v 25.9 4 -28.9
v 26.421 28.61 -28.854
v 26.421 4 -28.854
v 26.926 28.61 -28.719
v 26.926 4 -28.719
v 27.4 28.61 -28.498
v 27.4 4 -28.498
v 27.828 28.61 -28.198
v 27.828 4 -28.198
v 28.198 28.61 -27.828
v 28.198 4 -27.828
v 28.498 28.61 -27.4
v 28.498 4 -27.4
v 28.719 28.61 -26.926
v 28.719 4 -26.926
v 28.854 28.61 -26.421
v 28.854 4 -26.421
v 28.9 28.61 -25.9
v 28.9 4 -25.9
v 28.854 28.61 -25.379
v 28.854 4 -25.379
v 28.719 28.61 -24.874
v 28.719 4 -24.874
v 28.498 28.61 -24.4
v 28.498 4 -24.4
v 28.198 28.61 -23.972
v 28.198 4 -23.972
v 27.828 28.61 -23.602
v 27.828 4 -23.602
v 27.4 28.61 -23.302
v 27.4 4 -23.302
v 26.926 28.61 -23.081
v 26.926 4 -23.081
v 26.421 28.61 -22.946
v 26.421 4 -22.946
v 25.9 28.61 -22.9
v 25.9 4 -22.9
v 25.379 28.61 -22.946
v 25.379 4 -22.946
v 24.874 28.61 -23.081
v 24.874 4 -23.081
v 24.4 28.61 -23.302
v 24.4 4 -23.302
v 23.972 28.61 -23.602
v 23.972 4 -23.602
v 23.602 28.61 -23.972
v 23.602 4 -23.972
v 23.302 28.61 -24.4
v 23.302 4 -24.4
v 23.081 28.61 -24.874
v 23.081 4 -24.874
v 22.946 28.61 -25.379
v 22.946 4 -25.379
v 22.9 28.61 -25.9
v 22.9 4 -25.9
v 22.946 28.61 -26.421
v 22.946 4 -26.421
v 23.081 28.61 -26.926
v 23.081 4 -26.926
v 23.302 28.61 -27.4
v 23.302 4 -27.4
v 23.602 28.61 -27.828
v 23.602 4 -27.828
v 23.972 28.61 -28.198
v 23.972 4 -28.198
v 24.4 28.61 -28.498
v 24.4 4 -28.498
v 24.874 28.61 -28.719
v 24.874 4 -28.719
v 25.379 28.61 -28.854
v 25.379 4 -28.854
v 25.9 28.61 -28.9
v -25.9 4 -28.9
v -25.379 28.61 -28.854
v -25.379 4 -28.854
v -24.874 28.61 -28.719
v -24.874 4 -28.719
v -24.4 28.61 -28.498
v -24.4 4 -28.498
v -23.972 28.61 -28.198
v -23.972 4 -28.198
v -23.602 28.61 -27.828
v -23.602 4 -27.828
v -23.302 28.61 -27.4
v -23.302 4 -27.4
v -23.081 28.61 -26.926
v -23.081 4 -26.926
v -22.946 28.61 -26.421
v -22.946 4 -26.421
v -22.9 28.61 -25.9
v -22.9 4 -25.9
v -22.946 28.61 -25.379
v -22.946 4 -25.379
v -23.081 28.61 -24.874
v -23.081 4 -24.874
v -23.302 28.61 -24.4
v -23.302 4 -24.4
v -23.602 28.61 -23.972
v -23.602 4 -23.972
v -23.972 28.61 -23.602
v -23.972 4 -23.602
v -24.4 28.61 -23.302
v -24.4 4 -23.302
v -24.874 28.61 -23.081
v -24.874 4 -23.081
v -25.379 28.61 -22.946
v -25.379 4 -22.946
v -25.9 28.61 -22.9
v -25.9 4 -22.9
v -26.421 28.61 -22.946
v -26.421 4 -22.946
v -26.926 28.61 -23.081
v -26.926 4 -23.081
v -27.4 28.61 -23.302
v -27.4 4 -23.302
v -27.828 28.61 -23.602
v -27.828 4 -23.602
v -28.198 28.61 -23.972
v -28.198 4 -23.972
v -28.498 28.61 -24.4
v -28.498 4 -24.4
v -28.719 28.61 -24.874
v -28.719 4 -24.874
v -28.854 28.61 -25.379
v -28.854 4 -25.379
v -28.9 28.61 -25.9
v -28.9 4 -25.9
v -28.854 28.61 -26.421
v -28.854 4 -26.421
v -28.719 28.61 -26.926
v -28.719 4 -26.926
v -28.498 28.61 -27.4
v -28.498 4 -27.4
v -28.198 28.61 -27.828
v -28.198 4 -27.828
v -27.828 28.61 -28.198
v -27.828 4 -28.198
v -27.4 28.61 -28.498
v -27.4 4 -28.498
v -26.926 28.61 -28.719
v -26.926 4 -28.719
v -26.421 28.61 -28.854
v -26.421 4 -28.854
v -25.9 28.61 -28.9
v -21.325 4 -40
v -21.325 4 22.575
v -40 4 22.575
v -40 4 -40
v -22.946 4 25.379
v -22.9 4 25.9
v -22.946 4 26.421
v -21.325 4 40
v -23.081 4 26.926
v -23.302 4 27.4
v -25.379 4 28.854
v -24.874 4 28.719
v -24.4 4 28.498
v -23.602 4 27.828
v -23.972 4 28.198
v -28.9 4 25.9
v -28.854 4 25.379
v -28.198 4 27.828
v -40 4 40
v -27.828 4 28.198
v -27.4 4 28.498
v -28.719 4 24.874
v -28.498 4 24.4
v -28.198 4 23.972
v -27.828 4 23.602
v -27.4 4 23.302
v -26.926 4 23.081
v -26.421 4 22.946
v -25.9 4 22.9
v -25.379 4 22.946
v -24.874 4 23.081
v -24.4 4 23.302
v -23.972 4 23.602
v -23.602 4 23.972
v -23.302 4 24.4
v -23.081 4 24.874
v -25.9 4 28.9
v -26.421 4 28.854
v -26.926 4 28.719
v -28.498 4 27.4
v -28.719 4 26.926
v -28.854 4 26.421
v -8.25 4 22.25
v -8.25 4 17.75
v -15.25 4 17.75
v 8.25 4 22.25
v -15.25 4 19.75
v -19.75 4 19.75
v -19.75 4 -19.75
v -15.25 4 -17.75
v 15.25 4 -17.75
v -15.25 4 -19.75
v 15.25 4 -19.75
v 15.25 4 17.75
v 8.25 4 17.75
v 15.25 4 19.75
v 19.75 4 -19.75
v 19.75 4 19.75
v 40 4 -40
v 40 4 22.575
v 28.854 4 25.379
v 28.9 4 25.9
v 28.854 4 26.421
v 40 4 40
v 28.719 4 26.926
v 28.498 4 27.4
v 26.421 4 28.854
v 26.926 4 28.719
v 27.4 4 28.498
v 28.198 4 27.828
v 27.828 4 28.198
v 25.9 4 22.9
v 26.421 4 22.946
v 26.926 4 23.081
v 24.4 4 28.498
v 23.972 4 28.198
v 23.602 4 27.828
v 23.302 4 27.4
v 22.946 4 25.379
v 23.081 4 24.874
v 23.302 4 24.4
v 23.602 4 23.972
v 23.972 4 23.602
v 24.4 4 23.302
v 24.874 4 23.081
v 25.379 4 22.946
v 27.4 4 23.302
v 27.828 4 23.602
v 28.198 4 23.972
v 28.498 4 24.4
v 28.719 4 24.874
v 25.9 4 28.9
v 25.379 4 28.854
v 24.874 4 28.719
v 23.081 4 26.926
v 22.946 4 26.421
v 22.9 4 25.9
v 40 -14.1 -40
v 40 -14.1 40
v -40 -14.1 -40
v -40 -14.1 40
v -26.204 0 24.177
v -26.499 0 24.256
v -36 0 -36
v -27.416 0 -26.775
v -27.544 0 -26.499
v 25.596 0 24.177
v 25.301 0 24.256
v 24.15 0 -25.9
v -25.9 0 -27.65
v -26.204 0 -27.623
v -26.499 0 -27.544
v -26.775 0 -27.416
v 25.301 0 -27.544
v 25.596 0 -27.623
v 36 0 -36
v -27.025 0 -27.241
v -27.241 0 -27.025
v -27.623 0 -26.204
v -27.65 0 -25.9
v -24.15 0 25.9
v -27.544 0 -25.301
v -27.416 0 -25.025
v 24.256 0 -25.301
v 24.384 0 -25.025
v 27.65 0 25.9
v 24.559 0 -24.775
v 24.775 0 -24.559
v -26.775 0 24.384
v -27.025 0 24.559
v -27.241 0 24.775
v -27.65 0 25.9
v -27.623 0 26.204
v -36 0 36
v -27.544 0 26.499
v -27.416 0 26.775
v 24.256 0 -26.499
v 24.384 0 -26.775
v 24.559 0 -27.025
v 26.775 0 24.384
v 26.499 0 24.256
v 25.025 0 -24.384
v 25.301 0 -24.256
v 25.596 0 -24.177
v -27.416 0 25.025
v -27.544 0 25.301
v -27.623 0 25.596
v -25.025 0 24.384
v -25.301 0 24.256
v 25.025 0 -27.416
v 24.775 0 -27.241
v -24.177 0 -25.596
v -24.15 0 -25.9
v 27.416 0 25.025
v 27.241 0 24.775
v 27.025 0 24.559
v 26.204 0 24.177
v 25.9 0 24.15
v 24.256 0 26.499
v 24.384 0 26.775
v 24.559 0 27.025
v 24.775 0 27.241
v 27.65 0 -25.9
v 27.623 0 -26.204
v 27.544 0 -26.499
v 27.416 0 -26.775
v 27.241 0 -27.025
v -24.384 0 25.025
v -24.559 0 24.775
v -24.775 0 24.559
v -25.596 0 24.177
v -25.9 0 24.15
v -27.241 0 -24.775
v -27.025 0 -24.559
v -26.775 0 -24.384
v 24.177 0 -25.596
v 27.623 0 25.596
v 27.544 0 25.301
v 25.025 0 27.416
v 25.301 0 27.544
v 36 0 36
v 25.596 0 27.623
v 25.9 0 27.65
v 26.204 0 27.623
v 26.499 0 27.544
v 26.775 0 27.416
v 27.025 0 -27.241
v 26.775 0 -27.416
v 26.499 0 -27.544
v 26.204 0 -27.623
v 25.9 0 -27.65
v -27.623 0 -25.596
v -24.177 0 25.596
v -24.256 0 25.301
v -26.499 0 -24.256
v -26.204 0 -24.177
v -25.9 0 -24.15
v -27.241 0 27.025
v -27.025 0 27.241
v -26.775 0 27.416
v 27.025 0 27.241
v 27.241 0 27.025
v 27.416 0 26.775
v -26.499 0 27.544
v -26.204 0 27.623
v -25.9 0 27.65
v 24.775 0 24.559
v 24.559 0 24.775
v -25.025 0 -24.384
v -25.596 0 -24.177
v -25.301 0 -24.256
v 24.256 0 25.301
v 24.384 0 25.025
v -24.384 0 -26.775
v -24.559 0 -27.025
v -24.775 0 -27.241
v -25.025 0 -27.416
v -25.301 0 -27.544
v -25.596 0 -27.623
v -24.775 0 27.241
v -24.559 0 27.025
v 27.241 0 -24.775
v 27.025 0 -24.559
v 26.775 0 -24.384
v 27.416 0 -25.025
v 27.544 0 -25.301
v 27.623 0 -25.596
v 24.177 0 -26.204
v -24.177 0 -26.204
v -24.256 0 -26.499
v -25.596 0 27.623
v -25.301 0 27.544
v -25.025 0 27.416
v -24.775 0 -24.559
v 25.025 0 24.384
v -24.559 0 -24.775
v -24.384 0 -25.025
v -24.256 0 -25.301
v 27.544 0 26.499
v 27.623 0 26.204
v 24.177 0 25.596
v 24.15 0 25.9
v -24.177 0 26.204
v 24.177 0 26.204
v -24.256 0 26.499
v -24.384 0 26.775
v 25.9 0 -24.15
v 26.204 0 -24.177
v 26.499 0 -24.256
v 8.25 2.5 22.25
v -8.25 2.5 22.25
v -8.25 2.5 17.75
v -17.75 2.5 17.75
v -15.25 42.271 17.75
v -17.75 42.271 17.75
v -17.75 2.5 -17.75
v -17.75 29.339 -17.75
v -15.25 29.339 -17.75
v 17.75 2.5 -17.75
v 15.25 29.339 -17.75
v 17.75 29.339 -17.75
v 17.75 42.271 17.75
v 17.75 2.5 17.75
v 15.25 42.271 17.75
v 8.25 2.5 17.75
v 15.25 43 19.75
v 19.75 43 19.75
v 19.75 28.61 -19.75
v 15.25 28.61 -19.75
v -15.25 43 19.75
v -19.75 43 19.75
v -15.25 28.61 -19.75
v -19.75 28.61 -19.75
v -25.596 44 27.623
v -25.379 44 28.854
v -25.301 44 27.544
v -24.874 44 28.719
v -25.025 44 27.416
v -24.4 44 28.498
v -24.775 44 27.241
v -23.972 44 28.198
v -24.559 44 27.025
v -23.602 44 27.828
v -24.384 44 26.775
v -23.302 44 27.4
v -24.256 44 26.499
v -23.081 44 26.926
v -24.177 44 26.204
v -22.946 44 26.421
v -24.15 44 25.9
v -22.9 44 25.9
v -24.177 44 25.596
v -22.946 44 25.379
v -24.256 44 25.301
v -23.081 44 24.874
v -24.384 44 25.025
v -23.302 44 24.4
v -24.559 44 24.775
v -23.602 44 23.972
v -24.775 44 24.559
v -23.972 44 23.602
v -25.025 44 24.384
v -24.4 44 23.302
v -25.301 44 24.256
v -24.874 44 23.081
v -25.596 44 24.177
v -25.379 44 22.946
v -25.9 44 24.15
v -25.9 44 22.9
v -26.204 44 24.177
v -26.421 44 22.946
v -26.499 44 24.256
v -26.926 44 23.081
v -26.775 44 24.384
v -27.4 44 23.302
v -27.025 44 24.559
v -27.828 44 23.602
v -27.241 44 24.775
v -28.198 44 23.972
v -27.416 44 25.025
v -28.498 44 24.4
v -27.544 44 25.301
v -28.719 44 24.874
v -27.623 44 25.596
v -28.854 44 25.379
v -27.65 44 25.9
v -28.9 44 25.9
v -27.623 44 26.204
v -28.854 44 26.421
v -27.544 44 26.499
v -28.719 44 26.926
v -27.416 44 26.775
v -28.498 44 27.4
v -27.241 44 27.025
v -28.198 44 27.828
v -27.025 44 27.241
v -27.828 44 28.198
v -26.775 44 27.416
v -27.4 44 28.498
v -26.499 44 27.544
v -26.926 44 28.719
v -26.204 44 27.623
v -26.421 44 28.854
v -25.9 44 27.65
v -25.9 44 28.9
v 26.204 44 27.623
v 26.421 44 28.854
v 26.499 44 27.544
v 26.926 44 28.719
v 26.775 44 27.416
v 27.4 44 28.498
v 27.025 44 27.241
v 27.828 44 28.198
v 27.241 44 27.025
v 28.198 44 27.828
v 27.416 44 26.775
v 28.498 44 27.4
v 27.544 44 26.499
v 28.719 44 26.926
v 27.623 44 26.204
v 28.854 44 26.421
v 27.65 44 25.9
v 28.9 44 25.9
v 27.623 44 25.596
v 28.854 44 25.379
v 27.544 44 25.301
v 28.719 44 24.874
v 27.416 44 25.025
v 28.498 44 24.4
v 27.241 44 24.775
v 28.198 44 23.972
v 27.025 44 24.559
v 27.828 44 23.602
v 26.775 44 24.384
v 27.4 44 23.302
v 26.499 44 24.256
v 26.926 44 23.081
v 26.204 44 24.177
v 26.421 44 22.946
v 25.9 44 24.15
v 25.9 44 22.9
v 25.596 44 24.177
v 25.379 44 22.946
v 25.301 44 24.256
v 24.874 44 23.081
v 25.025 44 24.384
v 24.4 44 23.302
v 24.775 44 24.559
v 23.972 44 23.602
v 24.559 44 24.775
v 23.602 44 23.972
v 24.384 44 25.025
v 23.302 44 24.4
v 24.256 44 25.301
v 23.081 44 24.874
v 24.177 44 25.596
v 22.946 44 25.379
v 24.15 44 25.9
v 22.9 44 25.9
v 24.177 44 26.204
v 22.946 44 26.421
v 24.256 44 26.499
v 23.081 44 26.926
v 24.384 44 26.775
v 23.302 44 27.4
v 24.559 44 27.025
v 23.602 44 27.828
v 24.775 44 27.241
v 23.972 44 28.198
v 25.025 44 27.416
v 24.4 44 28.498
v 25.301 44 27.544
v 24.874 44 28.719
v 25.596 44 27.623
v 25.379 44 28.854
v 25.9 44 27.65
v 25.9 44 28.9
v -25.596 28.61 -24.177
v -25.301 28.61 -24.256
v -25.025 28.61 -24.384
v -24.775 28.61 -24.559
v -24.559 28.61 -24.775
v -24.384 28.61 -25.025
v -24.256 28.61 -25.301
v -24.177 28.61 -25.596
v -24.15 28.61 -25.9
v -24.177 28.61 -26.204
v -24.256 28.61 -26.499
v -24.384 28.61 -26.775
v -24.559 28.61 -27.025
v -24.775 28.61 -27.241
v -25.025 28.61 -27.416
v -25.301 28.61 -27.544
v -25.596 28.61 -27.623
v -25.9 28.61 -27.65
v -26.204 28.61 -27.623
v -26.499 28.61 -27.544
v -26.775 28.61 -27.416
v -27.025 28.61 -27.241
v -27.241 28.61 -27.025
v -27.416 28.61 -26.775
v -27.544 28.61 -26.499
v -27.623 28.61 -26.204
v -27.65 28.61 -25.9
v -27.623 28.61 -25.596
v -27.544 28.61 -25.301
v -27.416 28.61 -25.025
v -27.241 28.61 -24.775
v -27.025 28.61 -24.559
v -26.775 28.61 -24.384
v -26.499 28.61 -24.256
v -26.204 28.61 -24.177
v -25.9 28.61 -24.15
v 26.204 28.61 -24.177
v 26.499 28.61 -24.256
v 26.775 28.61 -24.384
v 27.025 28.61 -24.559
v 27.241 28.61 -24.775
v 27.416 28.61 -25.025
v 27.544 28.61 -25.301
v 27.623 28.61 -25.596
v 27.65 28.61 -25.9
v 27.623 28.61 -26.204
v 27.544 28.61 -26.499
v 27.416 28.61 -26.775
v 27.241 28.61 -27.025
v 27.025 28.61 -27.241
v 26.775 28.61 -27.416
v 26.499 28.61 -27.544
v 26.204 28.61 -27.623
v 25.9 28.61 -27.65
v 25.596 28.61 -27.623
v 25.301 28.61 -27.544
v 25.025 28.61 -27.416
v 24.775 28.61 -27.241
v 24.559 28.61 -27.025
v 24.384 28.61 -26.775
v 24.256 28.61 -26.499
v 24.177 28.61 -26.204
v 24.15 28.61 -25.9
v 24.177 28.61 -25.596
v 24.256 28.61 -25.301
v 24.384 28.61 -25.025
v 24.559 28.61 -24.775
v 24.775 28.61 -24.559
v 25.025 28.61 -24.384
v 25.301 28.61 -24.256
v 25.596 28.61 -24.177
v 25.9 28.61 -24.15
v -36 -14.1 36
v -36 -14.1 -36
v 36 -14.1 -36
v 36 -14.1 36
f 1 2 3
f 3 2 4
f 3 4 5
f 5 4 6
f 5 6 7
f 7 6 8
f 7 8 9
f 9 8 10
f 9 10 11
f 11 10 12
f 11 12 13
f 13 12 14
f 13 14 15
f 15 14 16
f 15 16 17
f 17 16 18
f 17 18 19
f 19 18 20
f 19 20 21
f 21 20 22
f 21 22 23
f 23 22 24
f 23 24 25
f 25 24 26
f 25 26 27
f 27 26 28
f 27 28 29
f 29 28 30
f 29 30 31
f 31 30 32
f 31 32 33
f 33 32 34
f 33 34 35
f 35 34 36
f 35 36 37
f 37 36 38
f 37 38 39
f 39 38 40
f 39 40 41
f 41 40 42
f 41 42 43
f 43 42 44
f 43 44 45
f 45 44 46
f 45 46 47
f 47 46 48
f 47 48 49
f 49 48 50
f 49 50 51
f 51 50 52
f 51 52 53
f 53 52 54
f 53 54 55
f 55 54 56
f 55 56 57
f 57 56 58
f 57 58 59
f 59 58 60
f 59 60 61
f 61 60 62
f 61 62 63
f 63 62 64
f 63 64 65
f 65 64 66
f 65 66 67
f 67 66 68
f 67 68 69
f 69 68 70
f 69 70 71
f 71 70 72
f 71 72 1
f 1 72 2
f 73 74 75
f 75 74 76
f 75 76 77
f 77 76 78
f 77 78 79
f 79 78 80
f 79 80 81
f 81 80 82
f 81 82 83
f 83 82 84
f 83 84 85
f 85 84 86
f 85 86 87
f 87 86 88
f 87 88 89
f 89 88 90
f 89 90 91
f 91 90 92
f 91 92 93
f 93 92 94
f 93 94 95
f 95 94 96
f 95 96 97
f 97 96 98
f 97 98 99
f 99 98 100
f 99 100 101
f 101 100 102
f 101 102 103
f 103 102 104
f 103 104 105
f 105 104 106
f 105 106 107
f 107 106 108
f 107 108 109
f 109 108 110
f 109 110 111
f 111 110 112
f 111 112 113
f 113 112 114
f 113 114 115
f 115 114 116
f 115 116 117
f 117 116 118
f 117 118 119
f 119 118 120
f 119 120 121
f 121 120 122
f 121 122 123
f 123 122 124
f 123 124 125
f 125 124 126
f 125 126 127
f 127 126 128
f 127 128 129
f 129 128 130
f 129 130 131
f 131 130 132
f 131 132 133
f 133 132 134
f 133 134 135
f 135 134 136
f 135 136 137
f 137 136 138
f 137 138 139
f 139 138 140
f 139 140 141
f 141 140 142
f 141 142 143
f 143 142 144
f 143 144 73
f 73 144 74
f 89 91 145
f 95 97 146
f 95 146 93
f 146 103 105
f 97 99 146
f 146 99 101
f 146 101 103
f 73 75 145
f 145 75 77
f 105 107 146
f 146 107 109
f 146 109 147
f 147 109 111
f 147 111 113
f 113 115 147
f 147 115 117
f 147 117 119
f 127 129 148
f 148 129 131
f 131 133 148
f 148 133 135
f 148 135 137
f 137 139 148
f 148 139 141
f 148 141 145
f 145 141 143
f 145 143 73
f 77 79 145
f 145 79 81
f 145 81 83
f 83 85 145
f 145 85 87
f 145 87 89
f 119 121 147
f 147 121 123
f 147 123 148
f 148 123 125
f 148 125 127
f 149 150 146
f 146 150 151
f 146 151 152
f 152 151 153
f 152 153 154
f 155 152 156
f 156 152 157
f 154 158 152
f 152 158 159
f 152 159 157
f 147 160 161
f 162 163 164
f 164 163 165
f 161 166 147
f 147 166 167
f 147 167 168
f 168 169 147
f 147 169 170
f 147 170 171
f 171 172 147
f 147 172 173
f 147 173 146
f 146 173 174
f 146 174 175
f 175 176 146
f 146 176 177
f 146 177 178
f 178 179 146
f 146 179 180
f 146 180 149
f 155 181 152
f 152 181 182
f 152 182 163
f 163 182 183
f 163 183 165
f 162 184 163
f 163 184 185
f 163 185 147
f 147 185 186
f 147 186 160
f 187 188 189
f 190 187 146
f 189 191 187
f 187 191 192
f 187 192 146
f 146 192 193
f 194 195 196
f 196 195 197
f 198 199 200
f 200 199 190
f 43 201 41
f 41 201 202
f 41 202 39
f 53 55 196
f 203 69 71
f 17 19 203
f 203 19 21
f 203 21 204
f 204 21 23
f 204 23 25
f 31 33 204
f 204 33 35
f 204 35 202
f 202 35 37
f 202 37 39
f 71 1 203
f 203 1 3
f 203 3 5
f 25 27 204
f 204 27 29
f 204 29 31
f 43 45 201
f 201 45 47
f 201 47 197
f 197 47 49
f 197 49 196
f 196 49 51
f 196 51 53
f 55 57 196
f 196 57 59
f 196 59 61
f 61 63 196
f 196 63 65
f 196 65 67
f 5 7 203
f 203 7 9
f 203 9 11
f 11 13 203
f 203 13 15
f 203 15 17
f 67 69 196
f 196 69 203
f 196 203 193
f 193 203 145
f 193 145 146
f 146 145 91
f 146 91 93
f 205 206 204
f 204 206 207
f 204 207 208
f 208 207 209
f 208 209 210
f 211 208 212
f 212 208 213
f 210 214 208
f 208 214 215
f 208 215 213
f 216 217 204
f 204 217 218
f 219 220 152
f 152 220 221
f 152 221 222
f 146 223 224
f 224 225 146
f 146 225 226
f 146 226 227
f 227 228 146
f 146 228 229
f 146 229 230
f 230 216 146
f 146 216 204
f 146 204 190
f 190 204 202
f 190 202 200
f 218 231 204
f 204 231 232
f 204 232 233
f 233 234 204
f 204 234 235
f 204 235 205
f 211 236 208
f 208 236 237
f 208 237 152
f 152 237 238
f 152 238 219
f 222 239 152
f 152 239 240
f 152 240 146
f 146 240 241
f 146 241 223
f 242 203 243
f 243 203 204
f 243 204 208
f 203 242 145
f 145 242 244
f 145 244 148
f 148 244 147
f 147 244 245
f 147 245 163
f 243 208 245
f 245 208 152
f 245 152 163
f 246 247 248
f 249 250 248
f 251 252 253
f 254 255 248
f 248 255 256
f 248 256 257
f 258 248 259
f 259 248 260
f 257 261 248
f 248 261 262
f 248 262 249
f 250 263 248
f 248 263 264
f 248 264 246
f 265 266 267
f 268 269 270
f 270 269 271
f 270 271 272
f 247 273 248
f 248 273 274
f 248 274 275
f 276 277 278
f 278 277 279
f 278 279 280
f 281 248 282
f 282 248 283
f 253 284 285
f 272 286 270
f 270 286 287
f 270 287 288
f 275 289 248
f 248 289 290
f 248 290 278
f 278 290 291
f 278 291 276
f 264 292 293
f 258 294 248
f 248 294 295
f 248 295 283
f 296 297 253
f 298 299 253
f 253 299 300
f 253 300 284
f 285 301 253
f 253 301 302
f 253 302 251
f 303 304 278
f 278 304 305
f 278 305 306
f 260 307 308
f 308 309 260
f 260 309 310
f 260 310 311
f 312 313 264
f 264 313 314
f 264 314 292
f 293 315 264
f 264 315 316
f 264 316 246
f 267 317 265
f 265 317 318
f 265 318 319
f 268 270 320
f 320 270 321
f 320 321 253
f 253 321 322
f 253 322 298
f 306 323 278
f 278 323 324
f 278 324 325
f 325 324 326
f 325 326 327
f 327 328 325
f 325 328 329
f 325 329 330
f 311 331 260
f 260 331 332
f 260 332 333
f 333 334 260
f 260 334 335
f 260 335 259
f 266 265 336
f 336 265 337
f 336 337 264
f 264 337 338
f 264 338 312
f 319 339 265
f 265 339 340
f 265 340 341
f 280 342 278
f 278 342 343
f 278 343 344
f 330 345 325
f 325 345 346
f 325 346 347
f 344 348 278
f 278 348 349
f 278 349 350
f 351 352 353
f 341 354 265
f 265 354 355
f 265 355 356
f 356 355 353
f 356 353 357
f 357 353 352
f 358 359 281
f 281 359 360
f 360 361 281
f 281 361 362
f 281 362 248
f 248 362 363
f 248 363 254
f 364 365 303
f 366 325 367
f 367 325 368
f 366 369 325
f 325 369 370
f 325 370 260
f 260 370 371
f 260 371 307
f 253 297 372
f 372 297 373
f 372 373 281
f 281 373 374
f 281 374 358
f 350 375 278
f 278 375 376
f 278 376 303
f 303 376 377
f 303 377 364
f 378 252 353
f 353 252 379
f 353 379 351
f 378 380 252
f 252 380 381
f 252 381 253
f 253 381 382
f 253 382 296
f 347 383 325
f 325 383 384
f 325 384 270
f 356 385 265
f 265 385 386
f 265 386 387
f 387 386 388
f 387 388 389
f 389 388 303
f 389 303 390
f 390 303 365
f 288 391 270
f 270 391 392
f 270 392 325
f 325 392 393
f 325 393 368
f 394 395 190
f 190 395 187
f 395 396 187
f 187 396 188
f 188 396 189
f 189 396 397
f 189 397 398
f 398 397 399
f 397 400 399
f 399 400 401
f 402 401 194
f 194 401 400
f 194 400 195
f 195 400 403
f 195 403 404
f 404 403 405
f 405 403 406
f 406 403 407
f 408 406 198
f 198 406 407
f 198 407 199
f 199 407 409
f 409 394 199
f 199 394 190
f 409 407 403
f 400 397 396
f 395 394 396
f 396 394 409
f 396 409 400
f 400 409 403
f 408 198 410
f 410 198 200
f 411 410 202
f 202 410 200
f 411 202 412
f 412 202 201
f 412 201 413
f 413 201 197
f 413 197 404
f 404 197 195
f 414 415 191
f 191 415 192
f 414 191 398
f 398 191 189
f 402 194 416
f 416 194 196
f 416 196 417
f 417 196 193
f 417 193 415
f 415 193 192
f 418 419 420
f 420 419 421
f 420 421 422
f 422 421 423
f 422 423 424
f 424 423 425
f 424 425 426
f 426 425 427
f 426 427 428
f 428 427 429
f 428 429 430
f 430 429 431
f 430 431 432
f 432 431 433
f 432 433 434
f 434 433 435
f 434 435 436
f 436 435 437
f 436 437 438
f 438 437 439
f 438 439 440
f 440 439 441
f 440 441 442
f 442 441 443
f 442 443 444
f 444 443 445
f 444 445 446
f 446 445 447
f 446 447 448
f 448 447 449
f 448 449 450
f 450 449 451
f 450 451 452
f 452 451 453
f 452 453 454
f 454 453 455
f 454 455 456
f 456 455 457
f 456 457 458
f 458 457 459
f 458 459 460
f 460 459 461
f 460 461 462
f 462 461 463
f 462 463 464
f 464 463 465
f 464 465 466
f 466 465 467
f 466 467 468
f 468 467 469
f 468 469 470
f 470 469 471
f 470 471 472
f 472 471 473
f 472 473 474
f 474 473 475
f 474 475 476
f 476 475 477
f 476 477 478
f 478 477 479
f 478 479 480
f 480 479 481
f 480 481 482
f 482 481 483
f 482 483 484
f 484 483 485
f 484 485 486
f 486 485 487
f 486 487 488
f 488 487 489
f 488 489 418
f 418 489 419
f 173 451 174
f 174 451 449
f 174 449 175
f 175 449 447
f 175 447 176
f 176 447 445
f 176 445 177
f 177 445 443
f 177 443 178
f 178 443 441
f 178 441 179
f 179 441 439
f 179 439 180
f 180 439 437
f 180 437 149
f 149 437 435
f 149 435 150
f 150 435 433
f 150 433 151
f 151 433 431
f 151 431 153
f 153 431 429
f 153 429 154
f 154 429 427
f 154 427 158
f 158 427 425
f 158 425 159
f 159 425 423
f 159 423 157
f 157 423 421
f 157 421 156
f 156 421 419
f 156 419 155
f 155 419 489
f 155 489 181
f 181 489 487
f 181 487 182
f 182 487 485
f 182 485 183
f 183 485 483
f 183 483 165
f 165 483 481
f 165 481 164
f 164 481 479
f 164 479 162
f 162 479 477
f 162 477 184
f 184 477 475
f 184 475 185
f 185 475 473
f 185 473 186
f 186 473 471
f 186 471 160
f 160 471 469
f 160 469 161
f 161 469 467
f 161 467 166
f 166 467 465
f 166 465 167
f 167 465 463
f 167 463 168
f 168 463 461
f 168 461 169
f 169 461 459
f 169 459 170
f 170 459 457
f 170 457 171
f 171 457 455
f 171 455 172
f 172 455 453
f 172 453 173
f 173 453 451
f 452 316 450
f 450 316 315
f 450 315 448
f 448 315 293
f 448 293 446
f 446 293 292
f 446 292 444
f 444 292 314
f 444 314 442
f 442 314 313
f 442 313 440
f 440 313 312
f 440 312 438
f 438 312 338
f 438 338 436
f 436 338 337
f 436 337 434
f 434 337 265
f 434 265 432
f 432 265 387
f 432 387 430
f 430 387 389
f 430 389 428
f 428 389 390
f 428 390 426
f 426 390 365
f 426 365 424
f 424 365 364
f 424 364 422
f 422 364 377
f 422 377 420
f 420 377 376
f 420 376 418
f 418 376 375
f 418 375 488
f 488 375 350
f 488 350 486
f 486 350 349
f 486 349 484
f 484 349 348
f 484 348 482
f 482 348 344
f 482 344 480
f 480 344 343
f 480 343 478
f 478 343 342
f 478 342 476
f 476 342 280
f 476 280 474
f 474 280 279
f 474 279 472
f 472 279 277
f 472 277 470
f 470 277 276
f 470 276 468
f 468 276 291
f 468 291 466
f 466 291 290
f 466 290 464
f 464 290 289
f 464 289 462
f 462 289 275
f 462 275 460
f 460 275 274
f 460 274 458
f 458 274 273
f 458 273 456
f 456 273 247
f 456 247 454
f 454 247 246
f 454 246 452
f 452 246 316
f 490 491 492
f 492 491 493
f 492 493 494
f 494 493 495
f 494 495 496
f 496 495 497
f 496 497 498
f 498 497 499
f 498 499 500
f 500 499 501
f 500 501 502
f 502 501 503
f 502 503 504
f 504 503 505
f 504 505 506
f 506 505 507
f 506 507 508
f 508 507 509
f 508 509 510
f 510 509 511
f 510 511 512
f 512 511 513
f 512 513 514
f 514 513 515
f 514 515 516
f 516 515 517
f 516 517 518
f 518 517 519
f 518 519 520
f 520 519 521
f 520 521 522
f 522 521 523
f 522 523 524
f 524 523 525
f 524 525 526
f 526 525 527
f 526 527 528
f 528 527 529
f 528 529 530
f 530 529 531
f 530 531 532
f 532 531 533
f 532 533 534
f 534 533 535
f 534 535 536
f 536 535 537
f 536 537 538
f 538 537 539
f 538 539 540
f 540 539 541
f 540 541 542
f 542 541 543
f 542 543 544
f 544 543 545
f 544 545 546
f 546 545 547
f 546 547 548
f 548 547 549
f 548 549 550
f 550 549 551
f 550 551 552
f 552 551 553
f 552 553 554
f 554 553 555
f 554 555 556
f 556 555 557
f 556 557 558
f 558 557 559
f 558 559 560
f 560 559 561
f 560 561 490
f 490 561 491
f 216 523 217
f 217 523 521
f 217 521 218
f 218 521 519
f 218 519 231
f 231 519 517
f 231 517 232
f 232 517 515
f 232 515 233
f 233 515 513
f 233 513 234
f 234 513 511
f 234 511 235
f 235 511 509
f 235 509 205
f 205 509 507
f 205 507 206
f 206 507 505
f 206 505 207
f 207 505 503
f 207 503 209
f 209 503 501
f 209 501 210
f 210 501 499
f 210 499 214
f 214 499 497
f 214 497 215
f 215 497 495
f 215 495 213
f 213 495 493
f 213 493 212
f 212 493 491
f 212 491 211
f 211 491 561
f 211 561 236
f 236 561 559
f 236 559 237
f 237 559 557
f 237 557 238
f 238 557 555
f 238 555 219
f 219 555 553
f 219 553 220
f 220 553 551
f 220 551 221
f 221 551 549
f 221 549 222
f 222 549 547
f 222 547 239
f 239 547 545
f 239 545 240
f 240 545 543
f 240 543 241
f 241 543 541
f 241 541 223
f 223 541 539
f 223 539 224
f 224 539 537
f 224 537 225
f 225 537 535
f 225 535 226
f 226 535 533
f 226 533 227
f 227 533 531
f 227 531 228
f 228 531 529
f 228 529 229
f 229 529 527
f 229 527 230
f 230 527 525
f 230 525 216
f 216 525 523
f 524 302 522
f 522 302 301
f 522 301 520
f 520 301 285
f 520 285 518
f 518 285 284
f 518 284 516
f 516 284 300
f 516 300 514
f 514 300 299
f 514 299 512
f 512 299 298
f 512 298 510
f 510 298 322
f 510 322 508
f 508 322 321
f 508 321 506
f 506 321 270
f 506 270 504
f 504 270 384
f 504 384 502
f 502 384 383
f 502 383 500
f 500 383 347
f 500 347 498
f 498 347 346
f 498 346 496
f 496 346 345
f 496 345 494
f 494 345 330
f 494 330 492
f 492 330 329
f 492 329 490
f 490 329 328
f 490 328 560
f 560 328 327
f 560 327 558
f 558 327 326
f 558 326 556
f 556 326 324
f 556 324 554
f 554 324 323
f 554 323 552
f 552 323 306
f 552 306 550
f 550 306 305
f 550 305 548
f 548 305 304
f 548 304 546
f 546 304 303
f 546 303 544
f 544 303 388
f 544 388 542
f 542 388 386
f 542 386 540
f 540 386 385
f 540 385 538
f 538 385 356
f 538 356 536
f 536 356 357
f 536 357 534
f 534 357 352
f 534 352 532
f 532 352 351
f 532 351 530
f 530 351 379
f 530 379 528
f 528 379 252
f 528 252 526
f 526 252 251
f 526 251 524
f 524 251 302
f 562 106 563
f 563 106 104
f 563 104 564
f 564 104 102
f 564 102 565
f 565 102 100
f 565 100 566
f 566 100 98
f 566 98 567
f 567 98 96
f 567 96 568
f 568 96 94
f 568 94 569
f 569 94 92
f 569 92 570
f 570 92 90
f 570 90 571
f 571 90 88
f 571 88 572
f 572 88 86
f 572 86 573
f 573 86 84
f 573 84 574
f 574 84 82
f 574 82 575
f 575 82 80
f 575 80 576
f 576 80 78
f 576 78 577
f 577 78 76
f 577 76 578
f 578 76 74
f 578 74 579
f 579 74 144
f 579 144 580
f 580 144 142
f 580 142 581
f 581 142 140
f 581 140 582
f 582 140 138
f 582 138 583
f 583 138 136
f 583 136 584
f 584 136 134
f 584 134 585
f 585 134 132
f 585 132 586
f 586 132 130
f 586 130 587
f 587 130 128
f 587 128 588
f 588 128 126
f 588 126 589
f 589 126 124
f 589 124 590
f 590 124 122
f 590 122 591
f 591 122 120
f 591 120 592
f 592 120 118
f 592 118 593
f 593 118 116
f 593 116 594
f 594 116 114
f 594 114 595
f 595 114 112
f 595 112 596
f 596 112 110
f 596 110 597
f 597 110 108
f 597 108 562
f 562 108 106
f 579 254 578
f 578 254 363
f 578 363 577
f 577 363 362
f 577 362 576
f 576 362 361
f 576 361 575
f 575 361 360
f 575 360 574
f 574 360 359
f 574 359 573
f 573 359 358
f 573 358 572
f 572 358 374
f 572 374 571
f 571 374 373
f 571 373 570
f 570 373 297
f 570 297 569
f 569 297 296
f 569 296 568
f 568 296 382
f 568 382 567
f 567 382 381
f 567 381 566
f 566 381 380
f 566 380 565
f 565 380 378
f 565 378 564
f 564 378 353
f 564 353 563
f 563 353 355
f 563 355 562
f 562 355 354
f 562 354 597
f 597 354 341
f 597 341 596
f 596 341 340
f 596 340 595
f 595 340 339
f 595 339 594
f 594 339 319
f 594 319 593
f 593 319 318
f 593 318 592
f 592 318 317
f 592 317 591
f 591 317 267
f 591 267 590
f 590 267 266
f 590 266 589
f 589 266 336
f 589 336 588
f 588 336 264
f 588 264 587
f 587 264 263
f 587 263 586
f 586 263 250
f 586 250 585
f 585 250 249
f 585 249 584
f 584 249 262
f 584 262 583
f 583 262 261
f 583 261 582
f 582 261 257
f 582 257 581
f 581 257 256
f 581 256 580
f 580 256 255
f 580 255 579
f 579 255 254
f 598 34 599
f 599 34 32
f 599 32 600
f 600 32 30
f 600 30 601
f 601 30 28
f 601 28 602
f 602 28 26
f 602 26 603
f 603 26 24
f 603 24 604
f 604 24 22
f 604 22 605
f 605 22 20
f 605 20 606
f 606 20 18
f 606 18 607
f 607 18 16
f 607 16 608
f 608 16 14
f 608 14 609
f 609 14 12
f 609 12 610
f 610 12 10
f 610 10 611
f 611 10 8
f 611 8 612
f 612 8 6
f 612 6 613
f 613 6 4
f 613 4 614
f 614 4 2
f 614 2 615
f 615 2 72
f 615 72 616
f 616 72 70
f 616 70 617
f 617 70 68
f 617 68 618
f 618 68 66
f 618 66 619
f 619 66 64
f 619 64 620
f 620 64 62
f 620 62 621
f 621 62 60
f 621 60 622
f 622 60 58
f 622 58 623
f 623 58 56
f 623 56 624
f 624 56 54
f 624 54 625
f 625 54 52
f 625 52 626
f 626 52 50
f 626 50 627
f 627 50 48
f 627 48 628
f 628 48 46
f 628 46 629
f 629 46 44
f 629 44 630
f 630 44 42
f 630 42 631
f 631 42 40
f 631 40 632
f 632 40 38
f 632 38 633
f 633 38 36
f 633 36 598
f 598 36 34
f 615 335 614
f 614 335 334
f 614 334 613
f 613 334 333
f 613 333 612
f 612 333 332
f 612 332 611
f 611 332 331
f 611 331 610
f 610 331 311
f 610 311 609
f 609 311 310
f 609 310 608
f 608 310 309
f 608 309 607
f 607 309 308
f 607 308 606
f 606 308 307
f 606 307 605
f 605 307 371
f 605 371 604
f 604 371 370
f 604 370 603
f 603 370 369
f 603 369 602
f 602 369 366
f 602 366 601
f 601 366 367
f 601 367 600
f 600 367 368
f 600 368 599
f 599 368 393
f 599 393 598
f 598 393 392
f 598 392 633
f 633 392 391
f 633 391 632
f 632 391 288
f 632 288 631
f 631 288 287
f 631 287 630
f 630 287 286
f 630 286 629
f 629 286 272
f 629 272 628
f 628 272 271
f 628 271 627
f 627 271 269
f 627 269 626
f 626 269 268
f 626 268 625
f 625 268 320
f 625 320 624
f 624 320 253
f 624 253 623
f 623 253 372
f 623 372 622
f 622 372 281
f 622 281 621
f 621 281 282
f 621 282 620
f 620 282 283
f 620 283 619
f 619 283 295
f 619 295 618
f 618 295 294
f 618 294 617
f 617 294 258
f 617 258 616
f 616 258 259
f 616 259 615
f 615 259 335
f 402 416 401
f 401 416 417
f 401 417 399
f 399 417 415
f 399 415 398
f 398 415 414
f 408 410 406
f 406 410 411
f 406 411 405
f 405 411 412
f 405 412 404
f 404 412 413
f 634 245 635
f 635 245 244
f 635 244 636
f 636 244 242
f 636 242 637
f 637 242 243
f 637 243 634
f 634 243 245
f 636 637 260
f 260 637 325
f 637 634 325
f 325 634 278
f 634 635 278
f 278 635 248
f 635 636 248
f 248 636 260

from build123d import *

# Parameters (mm, degrees)
SKETCH1_W               = 80
SKETCH1_H               = 80
BOSS_EXTRUDE1_DEPTH     = 4
CUT_EXTRUDE1_DEPTH      = 1.5
BOSS_EXTRUDE2_DEPTH     = 39
SKETCH5_R               = 3
SKETCH5_R_2             = 1.75
BOSS_EXTRUDE3_DEPTH     = 40
SKETCH6_R               = 4.5
CUT_EXTRUDE2_DEPTH      = 15.39
CUT_EXTRUDE3_DEPTH      = 60.75
SKETCH9_R               = 1.75
CUT_EXTRUDE4_DEPTH      = 41
CUT_EXTRUDE4_DEPTH_BACK = 5
SKETCH10_W              = 80
SKETCH10_H              = 80
SKETCH10_W_2            = 72
SKETCH10_H_2            = 72
BOSS_EXTRUDE5_DEPTH     = 14.1


with BuildPart() as part:
    # Sketch1 → Boss-Extrude1 (new body)
    with BuildSketch(Plane(origin=(0, 0, 0), x_dir=(1, 0, 0), z_dir=(0, 1, 0))):
        Rectangle(SKETCH1_W, SKETCH1_H)
    extrude(amount=BOSS_EXTRUDE1_DEPTH)

    # Sketch2 → Cut-Extrude1 (cut)
    with BuildSketch(Plane(origin=(0, 4, 0), x_dir=(1, 0, 0), z_dir=(0, 1, 0))):
        Polygon((8.25, -17.75), (17.75, -17.75), (17.75, 17.75), (-17.75, 17.75), (-17.75, -17.75), (-8.25, -17.75), (-8.25, -22.25), (8.25, -22.25), align=None)
    extrude(amount=-CUT_EXTRUDE1_DEPTH, mode=Mode.SUBTRACT)

    # Sketch3 → Boss-Extrude2 (add)
    with BuildSketch(Plane(origin=(0, 4, 0), x_dir=(1, 0, 0), z_dir=(0, 1, 0))):
        Polygon((-19.75, 17.75), (-19.75, -17.75), (-19.75, -19.75), (-17.75, -19.75), (-15.25, -19.75), (-15.25, -17.75), (-17.75, -17.75), (-17.75, 17.75), (-15.25, 17.75), (-15.25, 19.75), (-17.75, 19.75), (-19.75, 19.75), align=None)
        Polygon((19.75, 17.75), (19.75, -17.75), (19.75, -19.75), (17.75, -19.75), (15.25, -19.75), (15.25, -17.75), (17.75, -17.75), (17.75, 17.75), (15.25, 17.75), (15.25, 19.75), (17.75, 19.75), (19.75, 19.75), align=None)
    extrude(amount=BOSS_EXTRUDE2_DEPTH)

    # Sketch5 → Boss-Extrude3 (add)
    with BuildSketch(Plane(origin=(0, 4, 0), x_dir=(1, 0, 0), z_dir=(0, 1, 0))):
        with Locations((25.9, 25.9)):
            Circle(SKETCH5_R)
        with Locations((25.9, 25.9)):
            Circle(SKETCH5_R_2, mode=Mode.SUBTRACT)
        with Locations((-25.9, 25.9)):
            Circle(SKETCH5_R)
        with Locations((-25.9, 25.9)):
            Circle(SKETCH5_R_2, mode=Mode.SUBTRACT)
        with Locations((-25.9, -25.9)):
            Circle(SKETCH5_R)
        with Locations((-25.9, -25.9)):
            Circle(SKETCH5_R_2, mode=Mode.SUBTRACT)
        with Locations((25.9, -25.9)):
            Circle(SKETCH5_R)
        with Locations((25.9, -25.9)):
            Circle(SKETCH5_R_2, mode=Mode.SUBTRACT)
    extrude(amount=BOSS_EXTRUDE3_DEPTH)

    # Sketch6 → Cut-Extrude2 (cut)
    with BuildSketch(Plane(origin=(0, 44, 0), x_dir=(1, 0, 0), z_dir=(0, 1, 0))):
        with Locations((-25.9, 25.9)):
            Circle(SKETCH6_R)
        with Locations((25.9, 25.9)):
            Circle(SKETCH6_R)
    extrude(amount=-CUT_EXTRUDE2_DEPTH, mode=Mode.SUBTRACT)

    # Sketch7 → Cut-Extrude3 (cut, through all)
    with BuildSketch(Plane.ZY.offset(19.75)):
        Polygon((-19.75, 28.61), (19.75, 43), (-19.75, 43), align=None)
    extrude(amount=-CUT_EXTRUDE3_DEPTH, mode=Mode.SUBTRACT)

    # Sketch9 → Cut-Extrude4 (cut, two sides)
    with BuildSketch(Plane(origin=(0, 4, 0), x_dir=(1, 0, 0), z_dir=(0, 1, 0))) as cut_extrude4_sk:
        with Locations((-25.9, 25.9)):
            Circle(SKETCH9_R)
        with Locations((-25.9, -25.9)):
            Circle(SKETCH9_R)
        with Locations((25.9, -25.9)):
            Circle(SKETCH9_R)
        with Locations((25.9, 25.9)):
            Circle(SKETCH9_R)
    extrude(amount=CUT_EXTRUDE4_DEPTH, mode=Mode.SUBTRACT)
    extrude(cut_extrude4_sk.sketch, amount=-CUT_EXTRUDE4_DEPTH_BACK, mode=Mode.SUBTRACT)

    # Sketch10 → Boss-Extrude5 (add)
    with BuildSketch(Plane.XZ):
        Rectangle(SKETCH10_W, SKETCH10_H)
        Rectangle(SKETCH10_W_2, SKETCH10_H_2, mode=Mode.SUBTRACT)
    extrude(amount=BOSS_EXTRUDE5_DEPTH)


solid = part.part
